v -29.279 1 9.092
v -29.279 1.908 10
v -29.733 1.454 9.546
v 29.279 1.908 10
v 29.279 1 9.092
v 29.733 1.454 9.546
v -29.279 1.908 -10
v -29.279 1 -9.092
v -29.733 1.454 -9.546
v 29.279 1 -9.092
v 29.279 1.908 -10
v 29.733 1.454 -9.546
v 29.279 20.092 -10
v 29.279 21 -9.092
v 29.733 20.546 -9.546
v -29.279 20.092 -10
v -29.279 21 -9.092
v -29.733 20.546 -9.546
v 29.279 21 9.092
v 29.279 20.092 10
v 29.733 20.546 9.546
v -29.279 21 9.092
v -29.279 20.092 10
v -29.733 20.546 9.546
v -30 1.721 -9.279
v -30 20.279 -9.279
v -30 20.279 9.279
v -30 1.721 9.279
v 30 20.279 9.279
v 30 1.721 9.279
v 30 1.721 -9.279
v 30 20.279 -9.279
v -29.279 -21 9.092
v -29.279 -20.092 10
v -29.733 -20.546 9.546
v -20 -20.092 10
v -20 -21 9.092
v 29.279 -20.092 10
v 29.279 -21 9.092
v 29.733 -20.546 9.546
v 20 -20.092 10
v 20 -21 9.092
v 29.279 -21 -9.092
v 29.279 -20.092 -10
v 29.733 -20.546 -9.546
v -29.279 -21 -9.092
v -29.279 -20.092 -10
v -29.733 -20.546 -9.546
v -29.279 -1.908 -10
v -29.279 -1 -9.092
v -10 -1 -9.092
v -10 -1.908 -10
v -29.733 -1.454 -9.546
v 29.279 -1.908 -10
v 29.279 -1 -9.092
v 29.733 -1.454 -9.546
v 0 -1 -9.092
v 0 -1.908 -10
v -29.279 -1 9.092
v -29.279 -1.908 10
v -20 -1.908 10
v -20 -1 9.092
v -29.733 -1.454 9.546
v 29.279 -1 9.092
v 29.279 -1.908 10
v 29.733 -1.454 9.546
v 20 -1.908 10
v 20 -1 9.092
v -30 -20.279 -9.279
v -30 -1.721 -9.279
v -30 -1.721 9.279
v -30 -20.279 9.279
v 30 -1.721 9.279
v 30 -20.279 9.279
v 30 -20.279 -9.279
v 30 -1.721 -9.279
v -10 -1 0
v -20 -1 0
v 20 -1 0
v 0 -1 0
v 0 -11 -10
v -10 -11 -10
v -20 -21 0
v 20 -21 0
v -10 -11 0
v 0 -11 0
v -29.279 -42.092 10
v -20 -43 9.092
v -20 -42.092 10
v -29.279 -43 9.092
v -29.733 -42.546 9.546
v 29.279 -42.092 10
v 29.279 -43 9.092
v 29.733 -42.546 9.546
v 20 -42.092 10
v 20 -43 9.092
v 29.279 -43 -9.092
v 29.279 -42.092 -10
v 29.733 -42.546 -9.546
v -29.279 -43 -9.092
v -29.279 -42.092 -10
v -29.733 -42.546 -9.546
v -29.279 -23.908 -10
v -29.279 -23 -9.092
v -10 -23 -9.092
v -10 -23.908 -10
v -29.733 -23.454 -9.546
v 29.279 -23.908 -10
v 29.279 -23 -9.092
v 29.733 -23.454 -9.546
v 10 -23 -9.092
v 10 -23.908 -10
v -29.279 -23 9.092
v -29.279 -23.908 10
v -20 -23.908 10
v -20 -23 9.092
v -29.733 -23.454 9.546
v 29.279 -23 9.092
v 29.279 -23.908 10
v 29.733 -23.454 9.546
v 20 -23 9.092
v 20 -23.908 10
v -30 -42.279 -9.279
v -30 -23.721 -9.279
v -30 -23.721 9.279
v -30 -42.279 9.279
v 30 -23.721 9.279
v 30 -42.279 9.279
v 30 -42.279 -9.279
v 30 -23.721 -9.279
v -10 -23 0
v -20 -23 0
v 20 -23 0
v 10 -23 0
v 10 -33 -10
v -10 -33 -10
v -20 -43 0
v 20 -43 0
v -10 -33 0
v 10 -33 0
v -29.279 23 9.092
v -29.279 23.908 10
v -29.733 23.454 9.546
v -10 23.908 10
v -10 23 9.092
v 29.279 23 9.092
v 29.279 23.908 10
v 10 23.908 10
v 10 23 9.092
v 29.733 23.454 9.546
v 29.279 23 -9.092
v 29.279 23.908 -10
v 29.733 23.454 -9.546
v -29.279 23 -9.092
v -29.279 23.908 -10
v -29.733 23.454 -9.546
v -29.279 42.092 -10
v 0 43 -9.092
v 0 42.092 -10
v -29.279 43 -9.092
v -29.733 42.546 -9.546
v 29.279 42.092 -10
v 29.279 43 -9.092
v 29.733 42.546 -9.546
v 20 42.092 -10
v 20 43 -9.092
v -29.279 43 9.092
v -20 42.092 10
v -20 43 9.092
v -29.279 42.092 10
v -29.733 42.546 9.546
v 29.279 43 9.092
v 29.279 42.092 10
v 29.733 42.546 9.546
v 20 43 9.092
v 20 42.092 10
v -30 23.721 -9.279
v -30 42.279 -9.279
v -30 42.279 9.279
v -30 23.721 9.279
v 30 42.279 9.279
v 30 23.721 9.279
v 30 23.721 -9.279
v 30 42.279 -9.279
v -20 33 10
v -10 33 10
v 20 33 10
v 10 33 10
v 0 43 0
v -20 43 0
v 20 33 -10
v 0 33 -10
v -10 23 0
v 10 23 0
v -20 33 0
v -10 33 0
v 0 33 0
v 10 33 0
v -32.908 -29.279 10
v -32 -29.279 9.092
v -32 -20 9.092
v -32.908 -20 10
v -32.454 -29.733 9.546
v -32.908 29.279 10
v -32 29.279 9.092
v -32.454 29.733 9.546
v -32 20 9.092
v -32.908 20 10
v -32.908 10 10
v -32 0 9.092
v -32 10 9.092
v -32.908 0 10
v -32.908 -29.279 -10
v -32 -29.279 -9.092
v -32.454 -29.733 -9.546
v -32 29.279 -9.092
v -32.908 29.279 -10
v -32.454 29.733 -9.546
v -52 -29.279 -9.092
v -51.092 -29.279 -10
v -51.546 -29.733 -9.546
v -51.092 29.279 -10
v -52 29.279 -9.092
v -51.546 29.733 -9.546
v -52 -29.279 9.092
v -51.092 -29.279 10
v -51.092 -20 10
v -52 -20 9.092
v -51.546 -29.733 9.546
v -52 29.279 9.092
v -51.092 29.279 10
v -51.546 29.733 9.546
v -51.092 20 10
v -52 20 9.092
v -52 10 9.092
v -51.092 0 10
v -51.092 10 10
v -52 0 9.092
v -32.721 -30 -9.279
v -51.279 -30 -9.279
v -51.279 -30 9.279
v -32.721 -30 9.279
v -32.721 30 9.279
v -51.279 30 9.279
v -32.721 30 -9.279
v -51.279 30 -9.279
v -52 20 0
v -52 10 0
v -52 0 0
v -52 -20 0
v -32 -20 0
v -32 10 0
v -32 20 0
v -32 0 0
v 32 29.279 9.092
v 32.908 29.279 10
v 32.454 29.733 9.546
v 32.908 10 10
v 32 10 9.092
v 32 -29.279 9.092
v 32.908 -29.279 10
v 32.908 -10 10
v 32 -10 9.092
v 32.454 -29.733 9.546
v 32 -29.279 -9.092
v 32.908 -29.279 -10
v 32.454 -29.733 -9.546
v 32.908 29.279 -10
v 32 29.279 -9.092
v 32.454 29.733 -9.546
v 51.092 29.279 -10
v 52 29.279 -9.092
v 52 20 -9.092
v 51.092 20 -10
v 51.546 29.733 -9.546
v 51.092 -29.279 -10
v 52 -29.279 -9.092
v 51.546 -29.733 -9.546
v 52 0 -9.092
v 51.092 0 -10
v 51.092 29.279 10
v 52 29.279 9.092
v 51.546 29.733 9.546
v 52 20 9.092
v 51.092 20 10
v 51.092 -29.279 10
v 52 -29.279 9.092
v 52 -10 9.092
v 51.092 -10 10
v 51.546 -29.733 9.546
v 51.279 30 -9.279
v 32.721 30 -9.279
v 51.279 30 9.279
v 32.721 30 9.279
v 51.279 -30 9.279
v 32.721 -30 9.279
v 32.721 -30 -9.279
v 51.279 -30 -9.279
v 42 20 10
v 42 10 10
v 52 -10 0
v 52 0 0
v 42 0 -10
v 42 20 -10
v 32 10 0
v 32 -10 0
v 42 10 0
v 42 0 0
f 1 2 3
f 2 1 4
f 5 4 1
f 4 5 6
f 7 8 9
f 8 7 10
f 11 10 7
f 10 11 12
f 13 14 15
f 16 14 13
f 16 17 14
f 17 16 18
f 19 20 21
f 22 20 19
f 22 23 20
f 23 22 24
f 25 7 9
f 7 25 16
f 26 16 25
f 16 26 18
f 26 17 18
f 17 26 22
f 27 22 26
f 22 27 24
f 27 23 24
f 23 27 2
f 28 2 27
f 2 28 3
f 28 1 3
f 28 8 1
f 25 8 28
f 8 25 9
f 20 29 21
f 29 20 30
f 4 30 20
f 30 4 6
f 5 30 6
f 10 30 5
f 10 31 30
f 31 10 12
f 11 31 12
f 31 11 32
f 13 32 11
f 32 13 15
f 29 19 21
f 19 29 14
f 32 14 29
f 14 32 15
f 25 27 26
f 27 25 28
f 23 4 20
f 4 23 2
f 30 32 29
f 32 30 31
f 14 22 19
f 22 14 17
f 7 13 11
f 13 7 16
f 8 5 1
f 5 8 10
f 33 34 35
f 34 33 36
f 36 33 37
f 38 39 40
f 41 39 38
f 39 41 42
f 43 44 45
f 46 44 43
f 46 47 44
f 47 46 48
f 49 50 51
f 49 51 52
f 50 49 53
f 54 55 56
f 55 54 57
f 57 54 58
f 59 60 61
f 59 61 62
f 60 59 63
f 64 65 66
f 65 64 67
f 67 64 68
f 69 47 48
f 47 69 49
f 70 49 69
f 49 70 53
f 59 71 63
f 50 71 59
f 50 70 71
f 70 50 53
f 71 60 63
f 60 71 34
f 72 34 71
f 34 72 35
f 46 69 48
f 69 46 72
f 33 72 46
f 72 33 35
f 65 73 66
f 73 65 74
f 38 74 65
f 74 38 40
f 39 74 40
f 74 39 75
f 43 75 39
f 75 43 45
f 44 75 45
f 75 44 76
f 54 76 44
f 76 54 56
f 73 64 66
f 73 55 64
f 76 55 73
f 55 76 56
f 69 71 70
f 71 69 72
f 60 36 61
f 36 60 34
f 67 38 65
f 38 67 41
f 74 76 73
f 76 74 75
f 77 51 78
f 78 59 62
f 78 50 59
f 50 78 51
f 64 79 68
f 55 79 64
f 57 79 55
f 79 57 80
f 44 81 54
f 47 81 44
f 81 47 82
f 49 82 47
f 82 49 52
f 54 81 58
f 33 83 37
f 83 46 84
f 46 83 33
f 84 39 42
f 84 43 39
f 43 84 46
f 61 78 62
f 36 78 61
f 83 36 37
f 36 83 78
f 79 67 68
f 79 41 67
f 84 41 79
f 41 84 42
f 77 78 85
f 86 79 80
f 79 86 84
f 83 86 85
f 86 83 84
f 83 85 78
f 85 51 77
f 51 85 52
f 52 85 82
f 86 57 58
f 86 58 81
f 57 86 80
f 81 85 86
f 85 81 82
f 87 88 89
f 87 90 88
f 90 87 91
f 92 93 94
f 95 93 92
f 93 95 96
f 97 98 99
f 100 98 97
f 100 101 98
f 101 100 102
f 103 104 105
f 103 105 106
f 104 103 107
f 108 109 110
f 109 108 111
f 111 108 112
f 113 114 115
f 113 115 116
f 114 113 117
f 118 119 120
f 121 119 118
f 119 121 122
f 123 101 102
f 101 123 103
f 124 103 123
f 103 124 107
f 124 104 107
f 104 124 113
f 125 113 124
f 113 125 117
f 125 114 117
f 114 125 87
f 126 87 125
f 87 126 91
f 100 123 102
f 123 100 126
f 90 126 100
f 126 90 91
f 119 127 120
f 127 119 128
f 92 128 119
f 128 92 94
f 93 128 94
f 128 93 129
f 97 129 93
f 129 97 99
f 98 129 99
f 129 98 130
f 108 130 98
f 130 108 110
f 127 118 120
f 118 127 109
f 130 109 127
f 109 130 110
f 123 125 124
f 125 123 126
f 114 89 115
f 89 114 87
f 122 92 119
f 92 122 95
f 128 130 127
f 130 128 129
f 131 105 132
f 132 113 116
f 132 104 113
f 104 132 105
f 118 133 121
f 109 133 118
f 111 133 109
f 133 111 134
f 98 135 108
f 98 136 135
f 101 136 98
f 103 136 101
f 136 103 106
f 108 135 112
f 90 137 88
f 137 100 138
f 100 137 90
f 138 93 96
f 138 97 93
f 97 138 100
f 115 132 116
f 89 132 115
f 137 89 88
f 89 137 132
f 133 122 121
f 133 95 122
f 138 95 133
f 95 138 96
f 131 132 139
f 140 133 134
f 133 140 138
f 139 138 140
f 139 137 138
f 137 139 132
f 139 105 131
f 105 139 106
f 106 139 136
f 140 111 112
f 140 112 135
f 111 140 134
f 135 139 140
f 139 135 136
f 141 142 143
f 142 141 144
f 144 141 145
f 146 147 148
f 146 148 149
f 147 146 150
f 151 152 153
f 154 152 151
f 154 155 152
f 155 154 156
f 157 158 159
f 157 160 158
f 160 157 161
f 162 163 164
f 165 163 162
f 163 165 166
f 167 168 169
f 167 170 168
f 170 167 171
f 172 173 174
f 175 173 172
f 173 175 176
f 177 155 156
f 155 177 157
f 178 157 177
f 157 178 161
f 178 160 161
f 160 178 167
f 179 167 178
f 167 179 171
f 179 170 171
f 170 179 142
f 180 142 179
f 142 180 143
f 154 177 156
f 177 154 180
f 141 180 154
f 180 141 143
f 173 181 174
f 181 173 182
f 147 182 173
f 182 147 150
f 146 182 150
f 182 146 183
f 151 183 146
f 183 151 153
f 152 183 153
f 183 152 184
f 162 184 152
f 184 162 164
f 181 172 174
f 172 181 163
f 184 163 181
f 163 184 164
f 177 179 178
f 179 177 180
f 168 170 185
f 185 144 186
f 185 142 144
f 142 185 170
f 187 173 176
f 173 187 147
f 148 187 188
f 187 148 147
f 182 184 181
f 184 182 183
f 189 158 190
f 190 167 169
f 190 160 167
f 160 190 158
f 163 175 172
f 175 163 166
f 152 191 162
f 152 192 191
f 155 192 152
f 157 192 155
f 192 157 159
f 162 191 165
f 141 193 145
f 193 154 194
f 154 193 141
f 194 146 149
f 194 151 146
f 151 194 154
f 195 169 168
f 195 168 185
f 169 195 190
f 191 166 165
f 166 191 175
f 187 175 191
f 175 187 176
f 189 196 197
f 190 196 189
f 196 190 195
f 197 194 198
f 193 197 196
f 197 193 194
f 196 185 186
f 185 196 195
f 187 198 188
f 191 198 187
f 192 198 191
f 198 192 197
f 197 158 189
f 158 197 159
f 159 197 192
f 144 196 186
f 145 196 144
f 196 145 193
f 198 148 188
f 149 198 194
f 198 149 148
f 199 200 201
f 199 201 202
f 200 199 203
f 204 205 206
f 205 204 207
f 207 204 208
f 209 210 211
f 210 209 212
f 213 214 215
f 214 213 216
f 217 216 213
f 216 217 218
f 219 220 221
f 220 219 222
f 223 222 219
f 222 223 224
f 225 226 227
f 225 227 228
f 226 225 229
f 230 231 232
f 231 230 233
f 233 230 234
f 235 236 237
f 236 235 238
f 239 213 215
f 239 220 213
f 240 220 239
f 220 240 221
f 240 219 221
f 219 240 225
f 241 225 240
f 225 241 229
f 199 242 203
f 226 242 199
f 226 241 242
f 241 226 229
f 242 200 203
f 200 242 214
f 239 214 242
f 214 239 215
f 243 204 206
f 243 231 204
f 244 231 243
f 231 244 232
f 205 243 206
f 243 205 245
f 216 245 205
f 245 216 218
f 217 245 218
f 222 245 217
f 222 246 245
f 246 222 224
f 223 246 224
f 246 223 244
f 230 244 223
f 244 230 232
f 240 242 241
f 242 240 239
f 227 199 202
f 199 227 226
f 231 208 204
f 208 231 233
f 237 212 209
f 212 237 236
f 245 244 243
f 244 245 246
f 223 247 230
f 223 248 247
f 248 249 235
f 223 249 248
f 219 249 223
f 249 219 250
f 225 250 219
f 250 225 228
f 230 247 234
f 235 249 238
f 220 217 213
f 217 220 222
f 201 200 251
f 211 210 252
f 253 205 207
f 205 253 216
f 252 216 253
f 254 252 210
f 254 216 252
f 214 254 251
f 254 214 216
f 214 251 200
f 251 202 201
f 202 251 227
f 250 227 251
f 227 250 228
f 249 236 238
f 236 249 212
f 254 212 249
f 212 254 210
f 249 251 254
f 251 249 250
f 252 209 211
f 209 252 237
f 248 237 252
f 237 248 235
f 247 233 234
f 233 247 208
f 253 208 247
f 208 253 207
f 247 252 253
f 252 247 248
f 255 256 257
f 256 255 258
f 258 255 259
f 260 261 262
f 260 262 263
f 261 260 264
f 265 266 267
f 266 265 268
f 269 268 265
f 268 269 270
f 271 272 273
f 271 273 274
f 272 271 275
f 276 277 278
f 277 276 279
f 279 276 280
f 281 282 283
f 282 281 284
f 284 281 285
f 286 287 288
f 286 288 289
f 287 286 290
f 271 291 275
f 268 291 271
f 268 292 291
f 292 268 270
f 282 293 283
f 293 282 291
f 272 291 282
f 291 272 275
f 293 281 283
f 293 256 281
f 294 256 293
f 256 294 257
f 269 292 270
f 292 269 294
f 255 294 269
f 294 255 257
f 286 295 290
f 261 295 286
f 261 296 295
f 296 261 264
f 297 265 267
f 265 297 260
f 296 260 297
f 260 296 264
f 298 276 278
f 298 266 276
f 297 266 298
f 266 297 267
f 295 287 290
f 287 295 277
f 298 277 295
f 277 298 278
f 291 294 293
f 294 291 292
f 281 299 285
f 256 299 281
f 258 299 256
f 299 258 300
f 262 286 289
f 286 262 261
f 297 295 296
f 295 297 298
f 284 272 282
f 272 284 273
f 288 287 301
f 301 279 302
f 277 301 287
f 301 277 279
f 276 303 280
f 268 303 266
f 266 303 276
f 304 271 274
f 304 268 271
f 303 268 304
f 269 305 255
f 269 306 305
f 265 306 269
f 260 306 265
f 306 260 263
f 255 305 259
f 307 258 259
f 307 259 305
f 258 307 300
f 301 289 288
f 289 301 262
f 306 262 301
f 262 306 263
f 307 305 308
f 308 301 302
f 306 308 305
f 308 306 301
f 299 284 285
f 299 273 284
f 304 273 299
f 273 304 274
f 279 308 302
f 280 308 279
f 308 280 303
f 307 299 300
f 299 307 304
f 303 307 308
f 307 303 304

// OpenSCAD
module base(u) {
    difference() {
        cube([6*u,2*u,2*u], center=true);
        for (a=[45,135,225,315]) rotate([a,0,0]) translate([0,0,1.85*u]) cube([6.5*u,u,u], center=true);
        for (x=[-1,1],a=[0,90,180,270]) rotate([a,0,0]) translate([3.385*x*u,0,1.25*x*u]) rotate([0,45,0]) cube([u,2.5*u,u], center=true);
    }
}

module un(u) {
    difference() {
        base(u);
        translate([0,0,0.75*u]) cube([4*u,2.5*u,1.5*u], center=true);
        translate([-0.5*u,0.75*u,-0.5*u]) cube([1*u,1.5*u,1.5*u], center=true);
    }
}

module deux(u) {
    difference() {
        base(u);
        translate([0,0,0.75*u]) cube([4*u,2.5*u,1.5*u], center=true);
        translate([0*u,0.75*u,-0.5*u]) cube([2*u,1.5*u,1.5*u], center=true);
    }
}

module trois(u) {
    difference() {
        base(u);
        translate([0,u,0.75*u]) cube([4*u,2*u,1.5*u], center=true);
        translate([1*u,0.75*u,-0.5*u]) cube([2*u,1.5*u,1.5*u], center=true);
        translate([0,-0.5*u,0.75*u]) cube([2*u,1.5*u,1.5*u], center=true);
    }
}

module quatre(u) {
    difference() {
        base(u);
        translate([-u,0,0.75*u]) cube([2*u,2.5*u,1.5*u], center=true);
        translate([1.5*u,0,0.75*u]) cube([1*u,2.5*u,1.5*u], center=true);
    }
}

module cinq(u) {
    difference() {
        base(u);
        translate([0,0,0.75*u]) cube([2*u,2.5*u,1.5*u], center=true);
        translate([-1*u,0.75*u,0]) cube([2*u,1.5*u,2.5*u], center=true);
    }
}

module six(u) {
    base(u);
}

translate([0,11,0]) six(10);
translate([0,-11,0]) un(10);
translate([0,-33,0]) deux(10);
translate([0,33,0]) trois(10);

translate([-42,0,0]) rotate([0,0,90]) quatre(10);
translate([42,0,0]) rotate([0,0,-90]) cinq(10);
